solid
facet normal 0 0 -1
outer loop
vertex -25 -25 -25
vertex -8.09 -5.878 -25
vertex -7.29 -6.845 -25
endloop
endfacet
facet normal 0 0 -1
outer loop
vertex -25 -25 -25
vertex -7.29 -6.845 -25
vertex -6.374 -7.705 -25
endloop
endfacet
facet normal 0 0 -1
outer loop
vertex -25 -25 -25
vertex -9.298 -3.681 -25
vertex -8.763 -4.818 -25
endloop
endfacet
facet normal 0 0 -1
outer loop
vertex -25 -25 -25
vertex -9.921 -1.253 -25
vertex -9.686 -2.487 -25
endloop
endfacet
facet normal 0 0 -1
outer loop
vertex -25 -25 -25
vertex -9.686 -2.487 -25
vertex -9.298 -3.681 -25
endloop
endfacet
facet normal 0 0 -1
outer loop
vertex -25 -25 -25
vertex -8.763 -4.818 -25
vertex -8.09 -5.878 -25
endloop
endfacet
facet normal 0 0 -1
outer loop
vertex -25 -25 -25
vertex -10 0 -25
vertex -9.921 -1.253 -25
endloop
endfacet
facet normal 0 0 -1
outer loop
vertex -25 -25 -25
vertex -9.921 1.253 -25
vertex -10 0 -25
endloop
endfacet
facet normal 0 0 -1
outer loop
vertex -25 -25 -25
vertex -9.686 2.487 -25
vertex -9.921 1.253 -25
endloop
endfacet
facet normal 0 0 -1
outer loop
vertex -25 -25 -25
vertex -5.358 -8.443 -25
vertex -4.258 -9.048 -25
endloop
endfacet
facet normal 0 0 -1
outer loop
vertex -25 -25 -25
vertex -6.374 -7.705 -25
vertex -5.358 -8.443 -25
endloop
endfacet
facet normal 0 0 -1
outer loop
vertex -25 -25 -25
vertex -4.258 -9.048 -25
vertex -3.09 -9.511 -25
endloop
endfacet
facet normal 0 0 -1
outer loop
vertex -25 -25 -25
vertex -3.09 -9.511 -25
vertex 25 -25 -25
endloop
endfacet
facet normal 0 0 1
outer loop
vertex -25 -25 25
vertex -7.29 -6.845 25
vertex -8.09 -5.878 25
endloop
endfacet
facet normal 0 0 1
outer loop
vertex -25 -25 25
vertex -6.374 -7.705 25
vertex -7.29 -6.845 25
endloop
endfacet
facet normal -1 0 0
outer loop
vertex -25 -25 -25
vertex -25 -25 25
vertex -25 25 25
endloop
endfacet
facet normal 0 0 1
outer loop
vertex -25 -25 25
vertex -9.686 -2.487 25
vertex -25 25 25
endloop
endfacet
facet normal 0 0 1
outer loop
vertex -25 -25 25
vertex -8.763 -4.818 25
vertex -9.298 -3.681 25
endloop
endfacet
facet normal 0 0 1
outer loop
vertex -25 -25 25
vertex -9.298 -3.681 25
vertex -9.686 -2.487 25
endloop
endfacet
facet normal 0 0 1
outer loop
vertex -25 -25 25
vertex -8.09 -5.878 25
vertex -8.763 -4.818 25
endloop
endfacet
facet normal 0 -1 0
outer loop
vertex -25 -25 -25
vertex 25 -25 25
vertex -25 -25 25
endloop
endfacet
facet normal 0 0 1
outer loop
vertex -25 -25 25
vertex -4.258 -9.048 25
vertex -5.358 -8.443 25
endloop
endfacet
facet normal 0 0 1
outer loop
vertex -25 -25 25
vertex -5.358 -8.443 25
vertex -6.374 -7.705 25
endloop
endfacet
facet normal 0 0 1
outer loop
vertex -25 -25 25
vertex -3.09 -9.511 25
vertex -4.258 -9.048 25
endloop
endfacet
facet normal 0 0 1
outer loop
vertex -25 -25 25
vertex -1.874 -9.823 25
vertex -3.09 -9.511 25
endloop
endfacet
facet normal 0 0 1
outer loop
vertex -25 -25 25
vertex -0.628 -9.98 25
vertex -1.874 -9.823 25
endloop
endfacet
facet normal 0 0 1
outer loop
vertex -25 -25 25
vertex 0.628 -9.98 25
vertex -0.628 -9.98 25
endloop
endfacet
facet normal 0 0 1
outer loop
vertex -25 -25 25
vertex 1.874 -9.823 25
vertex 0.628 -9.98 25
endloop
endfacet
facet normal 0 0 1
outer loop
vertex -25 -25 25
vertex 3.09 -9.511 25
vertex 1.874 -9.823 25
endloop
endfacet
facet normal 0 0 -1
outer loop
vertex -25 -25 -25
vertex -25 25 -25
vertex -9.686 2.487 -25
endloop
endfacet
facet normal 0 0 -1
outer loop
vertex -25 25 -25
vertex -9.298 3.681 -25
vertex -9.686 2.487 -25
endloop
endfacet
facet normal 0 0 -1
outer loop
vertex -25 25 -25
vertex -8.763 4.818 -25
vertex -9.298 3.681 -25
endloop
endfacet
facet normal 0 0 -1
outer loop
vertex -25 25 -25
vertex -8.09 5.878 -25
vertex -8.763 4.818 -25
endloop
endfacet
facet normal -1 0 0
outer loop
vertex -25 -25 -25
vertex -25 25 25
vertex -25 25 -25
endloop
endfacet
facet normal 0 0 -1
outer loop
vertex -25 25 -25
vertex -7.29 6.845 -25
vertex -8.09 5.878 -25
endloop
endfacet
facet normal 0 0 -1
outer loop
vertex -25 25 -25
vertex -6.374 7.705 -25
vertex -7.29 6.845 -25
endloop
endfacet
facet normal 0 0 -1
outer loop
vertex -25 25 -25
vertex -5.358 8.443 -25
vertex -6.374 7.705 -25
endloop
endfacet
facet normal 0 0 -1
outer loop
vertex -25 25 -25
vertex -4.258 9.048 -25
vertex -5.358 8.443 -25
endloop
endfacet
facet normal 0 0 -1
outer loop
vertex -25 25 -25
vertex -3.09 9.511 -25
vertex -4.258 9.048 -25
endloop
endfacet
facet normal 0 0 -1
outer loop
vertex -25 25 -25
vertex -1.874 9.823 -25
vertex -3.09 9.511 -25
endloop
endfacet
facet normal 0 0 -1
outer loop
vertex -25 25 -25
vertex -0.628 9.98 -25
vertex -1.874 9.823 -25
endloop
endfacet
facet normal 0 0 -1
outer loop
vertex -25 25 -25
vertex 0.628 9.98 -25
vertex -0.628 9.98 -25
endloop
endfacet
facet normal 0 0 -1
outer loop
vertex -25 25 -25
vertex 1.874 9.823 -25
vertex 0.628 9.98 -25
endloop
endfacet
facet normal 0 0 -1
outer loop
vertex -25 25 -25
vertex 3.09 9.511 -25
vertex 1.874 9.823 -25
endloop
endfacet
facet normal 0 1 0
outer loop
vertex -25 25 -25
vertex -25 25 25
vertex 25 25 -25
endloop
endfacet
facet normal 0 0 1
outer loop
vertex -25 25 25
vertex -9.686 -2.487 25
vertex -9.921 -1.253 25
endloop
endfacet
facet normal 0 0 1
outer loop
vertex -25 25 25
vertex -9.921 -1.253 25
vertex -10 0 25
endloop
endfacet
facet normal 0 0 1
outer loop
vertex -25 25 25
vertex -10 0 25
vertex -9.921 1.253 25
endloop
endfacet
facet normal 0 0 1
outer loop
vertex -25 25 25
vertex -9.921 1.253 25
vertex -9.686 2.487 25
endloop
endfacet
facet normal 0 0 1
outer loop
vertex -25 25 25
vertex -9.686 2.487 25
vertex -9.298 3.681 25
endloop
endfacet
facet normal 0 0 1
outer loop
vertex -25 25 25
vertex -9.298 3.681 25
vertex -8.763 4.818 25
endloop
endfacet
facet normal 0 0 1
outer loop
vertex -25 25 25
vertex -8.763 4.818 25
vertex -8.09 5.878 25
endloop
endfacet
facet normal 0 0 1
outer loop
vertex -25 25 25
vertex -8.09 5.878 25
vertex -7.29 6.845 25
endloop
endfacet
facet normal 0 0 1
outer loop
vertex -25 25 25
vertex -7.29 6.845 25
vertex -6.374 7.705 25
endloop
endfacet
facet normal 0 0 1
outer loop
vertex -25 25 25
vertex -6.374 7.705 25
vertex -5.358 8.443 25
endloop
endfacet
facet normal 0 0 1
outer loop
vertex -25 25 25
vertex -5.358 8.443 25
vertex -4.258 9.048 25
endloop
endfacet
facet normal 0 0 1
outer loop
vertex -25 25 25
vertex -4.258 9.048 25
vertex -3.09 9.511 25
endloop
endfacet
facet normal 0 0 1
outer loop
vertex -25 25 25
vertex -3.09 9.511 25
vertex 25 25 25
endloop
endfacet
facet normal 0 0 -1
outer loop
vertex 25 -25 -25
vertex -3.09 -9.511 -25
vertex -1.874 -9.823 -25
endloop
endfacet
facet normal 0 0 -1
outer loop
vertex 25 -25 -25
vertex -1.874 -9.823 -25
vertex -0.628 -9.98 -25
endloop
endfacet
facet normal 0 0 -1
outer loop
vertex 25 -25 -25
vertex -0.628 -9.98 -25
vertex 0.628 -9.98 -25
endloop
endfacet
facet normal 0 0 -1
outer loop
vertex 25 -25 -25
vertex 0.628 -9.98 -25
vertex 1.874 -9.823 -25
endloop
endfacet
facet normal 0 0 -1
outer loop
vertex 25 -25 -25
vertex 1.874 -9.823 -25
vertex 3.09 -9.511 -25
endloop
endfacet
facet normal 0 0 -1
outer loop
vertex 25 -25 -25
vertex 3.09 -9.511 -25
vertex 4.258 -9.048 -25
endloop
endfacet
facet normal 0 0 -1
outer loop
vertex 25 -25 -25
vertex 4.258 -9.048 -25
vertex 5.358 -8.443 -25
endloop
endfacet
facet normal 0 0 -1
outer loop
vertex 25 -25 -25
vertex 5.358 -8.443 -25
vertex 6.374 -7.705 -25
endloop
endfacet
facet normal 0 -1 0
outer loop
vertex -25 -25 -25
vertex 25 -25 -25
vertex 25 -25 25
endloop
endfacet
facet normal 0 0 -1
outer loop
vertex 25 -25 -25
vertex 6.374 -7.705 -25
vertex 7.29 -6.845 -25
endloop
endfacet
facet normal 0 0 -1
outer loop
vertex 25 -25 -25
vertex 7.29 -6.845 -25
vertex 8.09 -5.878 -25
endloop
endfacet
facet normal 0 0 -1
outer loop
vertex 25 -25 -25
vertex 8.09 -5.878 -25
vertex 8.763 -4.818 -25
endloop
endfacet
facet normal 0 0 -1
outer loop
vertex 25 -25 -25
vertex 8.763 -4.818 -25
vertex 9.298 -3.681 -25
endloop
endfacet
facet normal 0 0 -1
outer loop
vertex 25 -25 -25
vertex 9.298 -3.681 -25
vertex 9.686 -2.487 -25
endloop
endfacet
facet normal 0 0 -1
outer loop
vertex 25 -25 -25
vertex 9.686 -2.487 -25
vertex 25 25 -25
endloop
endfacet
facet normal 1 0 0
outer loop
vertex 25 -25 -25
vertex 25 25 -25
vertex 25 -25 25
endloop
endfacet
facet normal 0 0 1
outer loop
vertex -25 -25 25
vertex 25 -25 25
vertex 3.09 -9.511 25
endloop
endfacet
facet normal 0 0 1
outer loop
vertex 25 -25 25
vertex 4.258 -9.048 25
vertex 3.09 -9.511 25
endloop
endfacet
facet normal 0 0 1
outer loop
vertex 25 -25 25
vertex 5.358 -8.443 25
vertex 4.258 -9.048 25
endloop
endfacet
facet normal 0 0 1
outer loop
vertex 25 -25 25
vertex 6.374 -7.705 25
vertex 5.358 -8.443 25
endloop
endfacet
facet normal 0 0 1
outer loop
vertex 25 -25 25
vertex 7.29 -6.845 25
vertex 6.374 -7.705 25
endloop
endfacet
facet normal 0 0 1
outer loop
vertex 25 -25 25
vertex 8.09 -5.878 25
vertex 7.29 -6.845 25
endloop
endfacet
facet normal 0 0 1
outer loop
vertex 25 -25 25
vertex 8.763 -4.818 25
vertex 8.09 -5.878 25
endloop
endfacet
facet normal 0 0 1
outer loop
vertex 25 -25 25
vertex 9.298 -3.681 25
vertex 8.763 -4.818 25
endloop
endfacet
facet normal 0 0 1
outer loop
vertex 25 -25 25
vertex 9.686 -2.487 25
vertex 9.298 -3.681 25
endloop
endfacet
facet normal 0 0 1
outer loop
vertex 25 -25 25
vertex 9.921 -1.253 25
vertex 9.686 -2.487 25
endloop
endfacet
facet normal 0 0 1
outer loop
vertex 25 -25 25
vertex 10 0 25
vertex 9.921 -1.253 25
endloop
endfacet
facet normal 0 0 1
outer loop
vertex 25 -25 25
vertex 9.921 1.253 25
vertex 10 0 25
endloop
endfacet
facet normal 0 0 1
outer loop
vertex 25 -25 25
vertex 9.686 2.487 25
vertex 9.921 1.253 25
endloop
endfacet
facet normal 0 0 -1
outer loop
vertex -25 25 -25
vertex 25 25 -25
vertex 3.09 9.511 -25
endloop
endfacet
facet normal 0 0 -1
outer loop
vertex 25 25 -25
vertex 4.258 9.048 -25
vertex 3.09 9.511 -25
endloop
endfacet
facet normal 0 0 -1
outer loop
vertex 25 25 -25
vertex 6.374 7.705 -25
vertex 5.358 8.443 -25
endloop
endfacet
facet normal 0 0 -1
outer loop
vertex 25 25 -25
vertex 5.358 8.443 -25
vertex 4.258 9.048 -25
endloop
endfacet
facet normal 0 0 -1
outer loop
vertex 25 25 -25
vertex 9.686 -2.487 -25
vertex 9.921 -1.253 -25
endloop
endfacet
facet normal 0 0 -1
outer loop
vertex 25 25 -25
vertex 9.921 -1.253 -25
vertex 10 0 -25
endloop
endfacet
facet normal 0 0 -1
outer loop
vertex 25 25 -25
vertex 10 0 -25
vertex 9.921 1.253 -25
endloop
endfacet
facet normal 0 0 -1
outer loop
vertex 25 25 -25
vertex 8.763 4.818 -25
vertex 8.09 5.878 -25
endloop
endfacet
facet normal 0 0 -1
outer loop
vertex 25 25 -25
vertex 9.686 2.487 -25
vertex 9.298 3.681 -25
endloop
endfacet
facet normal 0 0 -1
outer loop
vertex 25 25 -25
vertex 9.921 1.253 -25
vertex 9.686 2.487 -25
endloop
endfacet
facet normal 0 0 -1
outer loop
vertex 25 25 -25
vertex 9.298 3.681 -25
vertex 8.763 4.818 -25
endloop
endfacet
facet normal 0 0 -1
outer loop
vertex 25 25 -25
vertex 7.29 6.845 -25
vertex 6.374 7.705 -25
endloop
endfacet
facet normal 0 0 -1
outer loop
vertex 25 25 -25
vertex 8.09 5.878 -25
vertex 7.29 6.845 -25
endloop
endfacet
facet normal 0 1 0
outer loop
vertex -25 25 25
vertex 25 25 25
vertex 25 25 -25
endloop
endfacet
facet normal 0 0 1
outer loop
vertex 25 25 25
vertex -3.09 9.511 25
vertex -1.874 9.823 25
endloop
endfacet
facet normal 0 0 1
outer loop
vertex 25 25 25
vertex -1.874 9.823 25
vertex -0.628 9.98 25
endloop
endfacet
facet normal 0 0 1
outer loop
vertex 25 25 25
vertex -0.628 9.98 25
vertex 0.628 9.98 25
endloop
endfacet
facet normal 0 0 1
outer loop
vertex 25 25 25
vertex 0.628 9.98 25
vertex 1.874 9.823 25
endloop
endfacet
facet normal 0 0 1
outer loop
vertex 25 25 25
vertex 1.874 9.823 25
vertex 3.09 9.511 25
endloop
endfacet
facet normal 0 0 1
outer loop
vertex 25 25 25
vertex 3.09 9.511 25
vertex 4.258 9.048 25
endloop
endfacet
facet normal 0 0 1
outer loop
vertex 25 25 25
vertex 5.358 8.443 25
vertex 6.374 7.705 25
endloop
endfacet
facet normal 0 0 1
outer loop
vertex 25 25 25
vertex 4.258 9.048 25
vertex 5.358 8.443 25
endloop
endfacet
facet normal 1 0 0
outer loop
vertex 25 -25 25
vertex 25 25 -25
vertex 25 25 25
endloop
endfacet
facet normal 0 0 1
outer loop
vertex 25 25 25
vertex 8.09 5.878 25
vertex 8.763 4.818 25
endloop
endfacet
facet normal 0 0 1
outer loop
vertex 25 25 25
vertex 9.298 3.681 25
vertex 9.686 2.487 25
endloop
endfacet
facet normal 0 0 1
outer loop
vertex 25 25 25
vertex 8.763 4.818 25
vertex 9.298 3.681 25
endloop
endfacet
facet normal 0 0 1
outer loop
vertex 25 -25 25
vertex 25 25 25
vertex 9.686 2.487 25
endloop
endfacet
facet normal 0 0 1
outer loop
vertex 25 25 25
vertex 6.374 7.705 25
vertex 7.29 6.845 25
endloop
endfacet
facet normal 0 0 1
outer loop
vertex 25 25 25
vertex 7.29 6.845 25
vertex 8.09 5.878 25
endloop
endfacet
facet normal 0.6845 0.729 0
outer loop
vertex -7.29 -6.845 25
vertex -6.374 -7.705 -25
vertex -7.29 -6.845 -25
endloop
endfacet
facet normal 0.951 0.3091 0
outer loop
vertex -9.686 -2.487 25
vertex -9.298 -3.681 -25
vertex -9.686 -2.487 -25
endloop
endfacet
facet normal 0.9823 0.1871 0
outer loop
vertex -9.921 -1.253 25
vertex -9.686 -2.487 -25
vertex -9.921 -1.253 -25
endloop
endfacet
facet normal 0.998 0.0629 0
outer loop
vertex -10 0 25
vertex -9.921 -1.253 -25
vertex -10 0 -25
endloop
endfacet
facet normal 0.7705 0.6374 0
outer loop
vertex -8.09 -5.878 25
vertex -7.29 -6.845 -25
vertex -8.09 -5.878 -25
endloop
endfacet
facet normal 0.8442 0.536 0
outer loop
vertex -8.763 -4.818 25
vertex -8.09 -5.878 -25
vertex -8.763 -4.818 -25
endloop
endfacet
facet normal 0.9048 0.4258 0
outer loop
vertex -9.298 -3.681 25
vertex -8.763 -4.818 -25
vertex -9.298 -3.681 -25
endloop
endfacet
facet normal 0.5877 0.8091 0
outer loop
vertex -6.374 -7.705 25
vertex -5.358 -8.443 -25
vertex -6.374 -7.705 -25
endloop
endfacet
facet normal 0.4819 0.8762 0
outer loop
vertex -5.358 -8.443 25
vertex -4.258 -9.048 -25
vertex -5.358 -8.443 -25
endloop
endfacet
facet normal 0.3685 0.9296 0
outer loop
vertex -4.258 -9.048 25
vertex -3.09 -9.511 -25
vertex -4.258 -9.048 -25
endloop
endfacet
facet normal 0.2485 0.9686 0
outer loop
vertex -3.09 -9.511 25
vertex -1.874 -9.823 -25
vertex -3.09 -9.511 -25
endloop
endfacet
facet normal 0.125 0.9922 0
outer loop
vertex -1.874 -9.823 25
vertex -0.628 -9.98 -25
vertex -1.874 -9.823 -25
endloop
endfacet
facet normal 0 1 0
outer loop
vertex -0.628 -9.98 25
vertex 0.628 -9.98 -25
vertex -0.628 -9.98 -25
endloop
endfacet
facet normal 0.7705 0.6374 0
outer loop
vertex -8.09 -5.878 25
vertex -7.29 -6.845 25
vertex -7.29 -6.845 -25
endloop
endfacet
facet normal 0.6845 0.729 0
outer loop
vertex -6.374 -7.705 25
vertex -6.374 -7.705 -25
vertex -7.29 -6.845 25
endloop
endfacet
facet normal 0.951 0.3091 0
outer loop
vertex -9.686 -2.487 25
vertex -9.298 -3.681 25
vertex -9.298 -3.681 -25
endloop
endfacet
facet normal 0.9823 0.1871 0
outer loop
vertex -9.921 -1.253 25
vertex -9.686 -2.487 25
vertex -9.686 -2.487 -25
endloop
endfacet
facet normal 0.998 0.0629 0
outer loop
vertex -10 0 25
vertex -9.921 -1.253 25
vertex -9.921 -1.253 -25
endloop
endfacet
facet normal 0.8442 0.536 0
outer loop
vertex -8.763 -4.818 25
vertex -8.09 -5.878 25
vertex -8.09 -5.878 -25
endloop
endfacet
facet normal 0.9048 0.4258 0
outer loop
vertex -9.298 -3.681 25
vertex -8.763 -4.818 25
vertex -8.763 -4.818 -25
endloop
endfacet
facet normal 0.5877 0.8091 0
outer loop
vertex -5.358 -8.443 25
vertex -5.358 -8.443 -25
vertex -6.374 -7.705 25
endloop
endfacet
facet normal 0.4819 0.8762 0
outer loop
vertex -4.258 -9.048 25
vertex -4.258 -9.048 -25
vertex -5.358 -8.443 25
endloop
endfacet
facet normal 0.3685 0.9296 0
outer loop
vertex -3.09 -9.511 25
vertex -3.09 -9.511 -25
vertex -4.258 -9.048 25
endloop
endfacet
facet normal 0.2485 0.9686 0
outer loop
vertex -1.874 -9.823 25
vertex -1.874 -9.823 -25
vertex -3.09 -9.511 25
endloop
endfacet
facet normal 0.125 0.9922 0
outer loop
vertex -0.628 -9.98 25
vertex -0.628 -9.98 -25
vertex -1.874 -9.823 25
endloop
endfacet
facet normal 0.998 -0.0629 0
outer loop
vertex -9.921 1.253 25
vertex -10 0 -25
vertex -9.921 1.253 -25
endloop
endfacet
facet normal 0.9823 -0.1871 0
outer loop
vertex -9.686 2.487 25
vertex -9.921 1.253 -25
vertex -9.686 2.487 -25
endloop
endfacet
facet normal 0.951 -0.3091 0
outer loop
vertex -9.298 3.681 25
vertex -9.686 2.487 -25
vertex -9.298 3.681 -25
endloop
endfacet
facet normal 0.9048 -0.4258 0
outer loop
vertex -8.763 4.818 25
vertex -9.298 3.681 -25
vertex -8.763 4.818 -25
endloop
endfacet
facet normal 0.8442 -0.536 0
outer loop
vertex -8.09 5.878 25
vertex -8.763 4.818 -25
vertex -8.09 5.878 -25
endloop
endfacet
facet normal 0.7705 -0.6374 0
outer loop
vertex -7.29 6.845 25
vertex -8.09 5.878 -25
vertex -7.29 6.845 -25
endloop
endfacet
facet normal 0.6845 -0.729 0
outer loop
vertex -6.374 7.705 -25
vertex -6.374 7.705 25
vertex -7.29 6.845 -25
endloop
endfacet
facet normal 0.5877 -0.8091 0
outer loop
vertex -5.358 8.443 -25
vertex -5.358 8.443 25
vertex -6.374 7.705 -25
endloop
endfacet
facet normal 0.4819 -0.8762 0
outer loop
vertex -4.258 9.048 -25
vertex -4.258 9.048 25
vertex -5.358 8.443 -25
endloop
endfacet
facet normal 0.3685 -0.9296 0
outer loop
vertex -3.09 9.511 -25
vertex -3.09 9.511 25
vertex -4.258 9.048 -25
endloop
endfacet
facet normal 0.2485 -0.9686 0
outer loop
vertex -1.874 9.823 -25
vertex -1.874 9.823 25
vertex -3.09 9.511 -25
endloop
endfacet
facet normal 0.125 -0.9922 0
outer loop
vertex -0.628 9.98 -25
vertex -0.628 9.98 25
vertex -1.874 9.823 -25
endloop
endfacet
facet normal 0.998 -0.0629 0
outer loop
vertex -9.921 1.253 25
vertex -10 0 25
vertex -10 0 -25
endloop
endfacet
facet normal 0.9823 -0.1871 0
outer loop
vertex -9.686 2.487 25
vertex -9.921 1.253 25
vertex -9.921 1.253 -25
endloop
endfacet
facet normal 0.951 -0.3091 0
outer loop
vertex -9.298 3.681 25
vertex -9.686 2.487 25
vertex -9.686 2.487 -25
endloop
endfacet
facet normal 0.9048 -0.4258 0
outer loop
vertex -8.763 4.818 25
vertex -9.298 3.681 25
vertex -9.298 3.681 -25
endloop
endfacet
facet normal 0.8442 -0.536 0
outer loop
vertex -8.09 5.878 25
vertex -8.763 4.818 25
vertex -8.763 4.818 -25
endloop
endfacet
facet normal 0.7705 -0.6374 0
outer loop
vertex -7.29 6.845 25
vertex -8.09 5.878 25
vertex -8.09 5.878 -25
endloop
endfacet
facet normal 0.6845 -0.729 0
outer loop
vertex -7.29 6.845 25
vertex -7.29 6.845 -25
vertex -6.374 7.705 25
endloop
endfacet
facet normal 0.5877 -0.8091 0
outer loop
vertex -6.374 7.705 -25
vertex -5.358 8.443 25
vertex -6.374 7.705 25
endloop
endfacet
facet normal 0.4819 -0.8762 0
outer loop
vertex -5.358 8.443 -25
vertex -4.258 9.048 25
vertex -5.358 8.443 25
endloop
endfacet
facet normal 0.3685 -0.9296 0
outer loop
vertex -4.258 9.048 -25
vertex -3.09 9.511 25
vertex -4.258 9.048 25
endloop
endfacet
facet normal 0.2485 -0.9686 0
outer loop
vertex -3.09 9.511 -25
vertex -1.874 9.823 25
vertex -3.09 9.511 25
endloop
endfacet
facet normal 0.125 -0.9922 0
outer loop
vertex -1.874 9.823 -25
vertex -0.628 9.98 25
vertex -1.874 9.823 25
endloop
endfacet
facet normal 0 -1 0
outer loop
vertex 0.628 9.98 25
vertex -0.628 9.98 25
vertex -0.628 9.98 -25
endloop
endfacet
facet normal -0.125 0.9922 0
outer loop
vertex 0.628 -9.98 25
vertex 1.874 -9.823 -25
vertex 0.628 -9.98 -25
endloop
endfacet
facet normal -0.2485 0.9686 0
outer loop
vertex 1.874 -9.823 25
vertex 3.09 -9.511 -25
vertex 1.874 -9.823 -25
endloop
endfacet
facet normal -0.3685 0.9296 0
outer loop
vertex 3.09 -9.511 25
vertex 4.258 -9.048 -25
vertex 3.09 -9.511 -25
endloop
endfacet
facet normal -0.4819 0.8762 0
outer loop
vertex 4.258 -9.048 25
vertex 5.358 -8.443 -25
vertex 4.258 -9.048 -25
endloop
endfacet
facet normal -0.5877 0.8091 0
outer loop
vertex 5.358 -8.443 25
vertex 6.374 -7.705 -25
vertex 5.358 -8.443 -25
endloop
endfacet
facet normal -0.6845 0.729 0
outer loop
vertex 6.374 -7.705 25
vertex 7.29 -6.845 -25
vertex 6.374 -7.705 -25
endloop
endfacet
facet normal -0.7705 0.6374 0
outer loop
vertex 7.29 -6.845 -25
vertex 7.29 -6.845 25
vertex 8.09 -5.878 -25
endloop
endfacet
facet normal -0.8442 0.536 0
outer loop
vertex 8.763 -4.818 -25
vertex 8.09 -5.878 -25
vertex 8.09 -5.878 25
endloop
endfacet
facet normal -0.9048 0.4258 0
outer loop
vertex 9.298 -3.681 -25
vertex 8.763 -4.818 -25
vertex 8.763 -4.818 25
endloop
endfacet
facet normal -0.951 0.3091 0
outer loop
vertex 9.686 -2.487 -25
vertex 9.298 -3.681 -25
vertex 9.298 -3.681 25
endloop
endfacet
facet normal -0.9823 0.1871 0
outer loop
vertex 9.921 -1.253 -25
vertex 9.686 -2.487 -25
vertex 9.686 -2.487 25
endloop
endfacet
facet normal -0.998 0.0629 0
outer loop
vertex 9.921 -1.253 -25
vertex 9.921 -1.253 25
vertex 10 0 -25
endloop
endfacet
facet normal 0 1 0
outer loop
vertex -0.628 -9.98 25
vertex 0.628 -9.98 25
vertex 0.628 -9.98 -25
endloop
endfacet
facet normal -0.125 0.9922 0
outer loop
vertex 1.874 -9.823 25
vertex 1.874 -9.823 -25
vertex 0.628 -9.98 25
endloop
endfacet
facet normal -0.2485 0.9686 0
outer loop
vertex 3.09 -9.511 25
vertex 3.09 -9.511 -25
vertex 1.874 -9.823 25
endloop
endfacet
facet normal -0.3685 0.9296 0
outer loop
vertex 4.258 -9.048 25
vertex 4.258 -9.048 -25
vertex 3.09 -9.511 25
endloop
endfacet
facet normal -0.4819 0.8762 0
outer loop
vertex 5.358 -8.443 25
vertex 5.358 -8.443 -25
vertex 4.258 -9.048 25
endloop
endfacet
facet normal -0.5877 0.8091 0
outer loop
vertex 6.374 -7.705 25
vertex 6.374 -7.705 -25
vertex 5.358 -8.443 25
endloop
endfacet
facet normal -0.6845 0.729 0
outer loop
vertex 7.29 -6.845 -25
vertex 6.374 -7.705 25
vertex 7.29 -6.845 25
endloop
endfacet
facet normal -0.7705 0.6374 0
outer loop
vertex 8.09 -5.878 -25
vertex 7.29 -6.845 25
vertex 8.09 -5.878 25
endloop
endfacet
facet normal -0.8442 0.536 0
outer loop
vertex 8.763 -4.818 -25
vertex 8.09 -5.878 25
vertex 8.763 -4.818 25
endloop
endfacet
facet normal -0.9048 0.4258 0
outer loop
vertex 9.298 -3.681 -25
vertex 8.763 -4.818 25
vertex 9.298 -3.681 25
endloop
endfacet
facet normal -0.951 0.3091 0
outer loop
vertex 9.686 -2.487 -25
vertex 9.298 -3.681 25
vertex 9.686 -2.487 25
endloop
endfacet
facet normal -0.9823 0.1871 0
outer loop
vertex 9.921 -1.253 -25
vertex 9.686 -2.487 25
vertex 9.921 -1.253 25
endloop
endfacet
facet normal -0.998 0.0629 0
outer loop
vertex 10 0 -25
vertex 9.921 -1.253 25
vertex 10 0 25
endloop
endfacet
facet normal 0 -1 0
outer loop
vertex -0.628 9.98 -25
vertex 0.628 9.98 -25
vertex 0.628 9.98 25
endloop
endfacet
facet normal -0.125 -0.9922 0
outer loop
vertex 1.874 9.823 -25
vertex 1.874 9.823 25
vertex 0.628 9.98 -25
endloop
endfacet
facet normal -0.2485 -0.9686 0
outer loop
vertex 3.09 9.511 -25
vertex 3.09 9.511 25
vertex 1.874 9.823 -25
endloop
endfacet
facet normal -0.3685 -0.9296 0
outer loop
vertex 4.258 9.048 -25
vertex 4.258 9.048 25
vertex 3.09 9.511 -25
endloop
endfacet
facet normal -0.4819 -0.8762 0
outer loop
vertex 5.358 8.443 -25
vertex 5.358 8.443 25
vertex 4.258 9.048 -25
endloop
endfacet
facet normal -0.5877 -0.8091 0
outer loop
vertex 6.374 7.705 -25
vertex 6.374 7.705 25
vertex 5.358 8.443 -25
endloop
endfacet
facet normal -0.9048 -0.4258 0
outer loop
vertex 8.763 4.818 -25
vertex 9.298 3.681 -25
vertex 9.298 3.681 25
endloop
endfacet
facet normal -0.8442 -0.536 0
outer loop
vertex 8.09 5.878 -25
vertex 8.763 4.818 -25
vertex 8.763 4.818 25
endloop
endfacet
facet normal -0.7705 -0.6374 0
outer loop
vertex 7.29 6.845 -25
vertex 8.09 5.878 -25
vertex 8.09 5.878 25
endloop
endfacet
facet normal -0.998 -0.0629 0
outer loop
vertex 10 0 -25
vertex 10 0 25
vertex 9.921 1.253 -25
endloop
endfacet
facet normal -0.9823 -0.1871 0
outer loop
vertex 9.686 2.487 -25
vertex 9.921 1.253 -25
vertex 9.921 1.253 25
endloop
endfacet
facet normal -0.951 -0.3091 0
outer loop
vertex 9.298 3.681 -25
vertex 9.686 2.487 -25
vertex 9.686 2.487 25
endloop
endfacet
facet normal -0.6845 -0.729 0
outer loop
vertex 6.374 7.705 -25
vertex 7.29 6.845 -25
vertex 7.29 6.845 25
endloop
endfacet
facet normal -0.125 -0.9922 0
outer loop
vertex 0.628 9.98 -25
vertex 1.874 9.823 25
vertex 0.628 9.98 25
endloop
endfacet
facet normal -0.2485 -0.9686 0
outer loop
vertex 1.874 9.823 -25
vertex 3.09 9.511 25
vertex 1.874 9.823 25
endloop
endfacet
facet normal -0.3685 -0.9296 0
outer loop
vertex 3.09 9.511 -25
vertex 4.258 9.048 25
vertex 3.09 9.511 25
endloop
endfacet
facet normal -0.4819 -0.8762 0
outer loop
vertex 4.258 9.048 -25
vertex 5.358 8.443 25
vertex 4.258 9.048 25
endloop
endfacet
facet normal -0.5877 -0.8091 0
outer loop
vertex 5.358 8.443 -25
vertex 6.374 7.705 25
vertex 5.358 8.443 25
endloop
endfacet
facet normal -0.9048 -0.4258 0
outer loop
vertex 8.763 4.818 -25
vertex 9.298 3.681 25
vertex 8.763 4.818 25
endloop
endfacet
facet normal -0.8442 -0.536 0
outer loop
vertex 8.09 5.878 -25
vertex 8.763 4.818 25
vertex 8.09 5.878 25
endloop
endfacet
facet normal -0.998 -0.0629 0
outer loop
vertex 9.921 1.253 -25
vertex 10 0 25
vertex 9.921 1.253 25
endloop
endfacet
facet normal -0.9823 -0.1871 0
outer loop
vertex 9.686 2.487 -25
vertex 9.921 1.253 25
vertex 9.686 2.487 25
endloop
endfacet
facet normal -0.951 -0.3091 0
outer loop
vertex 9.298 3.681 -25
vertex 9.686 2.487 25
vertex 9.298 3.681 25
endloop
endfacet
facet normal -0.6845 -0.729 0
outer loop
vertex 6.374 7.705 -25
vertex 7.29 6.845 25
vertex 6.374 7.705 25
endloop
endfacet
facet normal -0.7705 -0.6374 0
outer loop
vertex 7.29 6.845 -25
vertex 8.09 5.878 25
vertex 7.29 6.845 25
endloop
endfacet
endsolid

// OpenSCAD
difference() {
    cube([50, 50, 50], center=true);
    cylinder(d=20, h=51, center=true, $fn=50);
}
